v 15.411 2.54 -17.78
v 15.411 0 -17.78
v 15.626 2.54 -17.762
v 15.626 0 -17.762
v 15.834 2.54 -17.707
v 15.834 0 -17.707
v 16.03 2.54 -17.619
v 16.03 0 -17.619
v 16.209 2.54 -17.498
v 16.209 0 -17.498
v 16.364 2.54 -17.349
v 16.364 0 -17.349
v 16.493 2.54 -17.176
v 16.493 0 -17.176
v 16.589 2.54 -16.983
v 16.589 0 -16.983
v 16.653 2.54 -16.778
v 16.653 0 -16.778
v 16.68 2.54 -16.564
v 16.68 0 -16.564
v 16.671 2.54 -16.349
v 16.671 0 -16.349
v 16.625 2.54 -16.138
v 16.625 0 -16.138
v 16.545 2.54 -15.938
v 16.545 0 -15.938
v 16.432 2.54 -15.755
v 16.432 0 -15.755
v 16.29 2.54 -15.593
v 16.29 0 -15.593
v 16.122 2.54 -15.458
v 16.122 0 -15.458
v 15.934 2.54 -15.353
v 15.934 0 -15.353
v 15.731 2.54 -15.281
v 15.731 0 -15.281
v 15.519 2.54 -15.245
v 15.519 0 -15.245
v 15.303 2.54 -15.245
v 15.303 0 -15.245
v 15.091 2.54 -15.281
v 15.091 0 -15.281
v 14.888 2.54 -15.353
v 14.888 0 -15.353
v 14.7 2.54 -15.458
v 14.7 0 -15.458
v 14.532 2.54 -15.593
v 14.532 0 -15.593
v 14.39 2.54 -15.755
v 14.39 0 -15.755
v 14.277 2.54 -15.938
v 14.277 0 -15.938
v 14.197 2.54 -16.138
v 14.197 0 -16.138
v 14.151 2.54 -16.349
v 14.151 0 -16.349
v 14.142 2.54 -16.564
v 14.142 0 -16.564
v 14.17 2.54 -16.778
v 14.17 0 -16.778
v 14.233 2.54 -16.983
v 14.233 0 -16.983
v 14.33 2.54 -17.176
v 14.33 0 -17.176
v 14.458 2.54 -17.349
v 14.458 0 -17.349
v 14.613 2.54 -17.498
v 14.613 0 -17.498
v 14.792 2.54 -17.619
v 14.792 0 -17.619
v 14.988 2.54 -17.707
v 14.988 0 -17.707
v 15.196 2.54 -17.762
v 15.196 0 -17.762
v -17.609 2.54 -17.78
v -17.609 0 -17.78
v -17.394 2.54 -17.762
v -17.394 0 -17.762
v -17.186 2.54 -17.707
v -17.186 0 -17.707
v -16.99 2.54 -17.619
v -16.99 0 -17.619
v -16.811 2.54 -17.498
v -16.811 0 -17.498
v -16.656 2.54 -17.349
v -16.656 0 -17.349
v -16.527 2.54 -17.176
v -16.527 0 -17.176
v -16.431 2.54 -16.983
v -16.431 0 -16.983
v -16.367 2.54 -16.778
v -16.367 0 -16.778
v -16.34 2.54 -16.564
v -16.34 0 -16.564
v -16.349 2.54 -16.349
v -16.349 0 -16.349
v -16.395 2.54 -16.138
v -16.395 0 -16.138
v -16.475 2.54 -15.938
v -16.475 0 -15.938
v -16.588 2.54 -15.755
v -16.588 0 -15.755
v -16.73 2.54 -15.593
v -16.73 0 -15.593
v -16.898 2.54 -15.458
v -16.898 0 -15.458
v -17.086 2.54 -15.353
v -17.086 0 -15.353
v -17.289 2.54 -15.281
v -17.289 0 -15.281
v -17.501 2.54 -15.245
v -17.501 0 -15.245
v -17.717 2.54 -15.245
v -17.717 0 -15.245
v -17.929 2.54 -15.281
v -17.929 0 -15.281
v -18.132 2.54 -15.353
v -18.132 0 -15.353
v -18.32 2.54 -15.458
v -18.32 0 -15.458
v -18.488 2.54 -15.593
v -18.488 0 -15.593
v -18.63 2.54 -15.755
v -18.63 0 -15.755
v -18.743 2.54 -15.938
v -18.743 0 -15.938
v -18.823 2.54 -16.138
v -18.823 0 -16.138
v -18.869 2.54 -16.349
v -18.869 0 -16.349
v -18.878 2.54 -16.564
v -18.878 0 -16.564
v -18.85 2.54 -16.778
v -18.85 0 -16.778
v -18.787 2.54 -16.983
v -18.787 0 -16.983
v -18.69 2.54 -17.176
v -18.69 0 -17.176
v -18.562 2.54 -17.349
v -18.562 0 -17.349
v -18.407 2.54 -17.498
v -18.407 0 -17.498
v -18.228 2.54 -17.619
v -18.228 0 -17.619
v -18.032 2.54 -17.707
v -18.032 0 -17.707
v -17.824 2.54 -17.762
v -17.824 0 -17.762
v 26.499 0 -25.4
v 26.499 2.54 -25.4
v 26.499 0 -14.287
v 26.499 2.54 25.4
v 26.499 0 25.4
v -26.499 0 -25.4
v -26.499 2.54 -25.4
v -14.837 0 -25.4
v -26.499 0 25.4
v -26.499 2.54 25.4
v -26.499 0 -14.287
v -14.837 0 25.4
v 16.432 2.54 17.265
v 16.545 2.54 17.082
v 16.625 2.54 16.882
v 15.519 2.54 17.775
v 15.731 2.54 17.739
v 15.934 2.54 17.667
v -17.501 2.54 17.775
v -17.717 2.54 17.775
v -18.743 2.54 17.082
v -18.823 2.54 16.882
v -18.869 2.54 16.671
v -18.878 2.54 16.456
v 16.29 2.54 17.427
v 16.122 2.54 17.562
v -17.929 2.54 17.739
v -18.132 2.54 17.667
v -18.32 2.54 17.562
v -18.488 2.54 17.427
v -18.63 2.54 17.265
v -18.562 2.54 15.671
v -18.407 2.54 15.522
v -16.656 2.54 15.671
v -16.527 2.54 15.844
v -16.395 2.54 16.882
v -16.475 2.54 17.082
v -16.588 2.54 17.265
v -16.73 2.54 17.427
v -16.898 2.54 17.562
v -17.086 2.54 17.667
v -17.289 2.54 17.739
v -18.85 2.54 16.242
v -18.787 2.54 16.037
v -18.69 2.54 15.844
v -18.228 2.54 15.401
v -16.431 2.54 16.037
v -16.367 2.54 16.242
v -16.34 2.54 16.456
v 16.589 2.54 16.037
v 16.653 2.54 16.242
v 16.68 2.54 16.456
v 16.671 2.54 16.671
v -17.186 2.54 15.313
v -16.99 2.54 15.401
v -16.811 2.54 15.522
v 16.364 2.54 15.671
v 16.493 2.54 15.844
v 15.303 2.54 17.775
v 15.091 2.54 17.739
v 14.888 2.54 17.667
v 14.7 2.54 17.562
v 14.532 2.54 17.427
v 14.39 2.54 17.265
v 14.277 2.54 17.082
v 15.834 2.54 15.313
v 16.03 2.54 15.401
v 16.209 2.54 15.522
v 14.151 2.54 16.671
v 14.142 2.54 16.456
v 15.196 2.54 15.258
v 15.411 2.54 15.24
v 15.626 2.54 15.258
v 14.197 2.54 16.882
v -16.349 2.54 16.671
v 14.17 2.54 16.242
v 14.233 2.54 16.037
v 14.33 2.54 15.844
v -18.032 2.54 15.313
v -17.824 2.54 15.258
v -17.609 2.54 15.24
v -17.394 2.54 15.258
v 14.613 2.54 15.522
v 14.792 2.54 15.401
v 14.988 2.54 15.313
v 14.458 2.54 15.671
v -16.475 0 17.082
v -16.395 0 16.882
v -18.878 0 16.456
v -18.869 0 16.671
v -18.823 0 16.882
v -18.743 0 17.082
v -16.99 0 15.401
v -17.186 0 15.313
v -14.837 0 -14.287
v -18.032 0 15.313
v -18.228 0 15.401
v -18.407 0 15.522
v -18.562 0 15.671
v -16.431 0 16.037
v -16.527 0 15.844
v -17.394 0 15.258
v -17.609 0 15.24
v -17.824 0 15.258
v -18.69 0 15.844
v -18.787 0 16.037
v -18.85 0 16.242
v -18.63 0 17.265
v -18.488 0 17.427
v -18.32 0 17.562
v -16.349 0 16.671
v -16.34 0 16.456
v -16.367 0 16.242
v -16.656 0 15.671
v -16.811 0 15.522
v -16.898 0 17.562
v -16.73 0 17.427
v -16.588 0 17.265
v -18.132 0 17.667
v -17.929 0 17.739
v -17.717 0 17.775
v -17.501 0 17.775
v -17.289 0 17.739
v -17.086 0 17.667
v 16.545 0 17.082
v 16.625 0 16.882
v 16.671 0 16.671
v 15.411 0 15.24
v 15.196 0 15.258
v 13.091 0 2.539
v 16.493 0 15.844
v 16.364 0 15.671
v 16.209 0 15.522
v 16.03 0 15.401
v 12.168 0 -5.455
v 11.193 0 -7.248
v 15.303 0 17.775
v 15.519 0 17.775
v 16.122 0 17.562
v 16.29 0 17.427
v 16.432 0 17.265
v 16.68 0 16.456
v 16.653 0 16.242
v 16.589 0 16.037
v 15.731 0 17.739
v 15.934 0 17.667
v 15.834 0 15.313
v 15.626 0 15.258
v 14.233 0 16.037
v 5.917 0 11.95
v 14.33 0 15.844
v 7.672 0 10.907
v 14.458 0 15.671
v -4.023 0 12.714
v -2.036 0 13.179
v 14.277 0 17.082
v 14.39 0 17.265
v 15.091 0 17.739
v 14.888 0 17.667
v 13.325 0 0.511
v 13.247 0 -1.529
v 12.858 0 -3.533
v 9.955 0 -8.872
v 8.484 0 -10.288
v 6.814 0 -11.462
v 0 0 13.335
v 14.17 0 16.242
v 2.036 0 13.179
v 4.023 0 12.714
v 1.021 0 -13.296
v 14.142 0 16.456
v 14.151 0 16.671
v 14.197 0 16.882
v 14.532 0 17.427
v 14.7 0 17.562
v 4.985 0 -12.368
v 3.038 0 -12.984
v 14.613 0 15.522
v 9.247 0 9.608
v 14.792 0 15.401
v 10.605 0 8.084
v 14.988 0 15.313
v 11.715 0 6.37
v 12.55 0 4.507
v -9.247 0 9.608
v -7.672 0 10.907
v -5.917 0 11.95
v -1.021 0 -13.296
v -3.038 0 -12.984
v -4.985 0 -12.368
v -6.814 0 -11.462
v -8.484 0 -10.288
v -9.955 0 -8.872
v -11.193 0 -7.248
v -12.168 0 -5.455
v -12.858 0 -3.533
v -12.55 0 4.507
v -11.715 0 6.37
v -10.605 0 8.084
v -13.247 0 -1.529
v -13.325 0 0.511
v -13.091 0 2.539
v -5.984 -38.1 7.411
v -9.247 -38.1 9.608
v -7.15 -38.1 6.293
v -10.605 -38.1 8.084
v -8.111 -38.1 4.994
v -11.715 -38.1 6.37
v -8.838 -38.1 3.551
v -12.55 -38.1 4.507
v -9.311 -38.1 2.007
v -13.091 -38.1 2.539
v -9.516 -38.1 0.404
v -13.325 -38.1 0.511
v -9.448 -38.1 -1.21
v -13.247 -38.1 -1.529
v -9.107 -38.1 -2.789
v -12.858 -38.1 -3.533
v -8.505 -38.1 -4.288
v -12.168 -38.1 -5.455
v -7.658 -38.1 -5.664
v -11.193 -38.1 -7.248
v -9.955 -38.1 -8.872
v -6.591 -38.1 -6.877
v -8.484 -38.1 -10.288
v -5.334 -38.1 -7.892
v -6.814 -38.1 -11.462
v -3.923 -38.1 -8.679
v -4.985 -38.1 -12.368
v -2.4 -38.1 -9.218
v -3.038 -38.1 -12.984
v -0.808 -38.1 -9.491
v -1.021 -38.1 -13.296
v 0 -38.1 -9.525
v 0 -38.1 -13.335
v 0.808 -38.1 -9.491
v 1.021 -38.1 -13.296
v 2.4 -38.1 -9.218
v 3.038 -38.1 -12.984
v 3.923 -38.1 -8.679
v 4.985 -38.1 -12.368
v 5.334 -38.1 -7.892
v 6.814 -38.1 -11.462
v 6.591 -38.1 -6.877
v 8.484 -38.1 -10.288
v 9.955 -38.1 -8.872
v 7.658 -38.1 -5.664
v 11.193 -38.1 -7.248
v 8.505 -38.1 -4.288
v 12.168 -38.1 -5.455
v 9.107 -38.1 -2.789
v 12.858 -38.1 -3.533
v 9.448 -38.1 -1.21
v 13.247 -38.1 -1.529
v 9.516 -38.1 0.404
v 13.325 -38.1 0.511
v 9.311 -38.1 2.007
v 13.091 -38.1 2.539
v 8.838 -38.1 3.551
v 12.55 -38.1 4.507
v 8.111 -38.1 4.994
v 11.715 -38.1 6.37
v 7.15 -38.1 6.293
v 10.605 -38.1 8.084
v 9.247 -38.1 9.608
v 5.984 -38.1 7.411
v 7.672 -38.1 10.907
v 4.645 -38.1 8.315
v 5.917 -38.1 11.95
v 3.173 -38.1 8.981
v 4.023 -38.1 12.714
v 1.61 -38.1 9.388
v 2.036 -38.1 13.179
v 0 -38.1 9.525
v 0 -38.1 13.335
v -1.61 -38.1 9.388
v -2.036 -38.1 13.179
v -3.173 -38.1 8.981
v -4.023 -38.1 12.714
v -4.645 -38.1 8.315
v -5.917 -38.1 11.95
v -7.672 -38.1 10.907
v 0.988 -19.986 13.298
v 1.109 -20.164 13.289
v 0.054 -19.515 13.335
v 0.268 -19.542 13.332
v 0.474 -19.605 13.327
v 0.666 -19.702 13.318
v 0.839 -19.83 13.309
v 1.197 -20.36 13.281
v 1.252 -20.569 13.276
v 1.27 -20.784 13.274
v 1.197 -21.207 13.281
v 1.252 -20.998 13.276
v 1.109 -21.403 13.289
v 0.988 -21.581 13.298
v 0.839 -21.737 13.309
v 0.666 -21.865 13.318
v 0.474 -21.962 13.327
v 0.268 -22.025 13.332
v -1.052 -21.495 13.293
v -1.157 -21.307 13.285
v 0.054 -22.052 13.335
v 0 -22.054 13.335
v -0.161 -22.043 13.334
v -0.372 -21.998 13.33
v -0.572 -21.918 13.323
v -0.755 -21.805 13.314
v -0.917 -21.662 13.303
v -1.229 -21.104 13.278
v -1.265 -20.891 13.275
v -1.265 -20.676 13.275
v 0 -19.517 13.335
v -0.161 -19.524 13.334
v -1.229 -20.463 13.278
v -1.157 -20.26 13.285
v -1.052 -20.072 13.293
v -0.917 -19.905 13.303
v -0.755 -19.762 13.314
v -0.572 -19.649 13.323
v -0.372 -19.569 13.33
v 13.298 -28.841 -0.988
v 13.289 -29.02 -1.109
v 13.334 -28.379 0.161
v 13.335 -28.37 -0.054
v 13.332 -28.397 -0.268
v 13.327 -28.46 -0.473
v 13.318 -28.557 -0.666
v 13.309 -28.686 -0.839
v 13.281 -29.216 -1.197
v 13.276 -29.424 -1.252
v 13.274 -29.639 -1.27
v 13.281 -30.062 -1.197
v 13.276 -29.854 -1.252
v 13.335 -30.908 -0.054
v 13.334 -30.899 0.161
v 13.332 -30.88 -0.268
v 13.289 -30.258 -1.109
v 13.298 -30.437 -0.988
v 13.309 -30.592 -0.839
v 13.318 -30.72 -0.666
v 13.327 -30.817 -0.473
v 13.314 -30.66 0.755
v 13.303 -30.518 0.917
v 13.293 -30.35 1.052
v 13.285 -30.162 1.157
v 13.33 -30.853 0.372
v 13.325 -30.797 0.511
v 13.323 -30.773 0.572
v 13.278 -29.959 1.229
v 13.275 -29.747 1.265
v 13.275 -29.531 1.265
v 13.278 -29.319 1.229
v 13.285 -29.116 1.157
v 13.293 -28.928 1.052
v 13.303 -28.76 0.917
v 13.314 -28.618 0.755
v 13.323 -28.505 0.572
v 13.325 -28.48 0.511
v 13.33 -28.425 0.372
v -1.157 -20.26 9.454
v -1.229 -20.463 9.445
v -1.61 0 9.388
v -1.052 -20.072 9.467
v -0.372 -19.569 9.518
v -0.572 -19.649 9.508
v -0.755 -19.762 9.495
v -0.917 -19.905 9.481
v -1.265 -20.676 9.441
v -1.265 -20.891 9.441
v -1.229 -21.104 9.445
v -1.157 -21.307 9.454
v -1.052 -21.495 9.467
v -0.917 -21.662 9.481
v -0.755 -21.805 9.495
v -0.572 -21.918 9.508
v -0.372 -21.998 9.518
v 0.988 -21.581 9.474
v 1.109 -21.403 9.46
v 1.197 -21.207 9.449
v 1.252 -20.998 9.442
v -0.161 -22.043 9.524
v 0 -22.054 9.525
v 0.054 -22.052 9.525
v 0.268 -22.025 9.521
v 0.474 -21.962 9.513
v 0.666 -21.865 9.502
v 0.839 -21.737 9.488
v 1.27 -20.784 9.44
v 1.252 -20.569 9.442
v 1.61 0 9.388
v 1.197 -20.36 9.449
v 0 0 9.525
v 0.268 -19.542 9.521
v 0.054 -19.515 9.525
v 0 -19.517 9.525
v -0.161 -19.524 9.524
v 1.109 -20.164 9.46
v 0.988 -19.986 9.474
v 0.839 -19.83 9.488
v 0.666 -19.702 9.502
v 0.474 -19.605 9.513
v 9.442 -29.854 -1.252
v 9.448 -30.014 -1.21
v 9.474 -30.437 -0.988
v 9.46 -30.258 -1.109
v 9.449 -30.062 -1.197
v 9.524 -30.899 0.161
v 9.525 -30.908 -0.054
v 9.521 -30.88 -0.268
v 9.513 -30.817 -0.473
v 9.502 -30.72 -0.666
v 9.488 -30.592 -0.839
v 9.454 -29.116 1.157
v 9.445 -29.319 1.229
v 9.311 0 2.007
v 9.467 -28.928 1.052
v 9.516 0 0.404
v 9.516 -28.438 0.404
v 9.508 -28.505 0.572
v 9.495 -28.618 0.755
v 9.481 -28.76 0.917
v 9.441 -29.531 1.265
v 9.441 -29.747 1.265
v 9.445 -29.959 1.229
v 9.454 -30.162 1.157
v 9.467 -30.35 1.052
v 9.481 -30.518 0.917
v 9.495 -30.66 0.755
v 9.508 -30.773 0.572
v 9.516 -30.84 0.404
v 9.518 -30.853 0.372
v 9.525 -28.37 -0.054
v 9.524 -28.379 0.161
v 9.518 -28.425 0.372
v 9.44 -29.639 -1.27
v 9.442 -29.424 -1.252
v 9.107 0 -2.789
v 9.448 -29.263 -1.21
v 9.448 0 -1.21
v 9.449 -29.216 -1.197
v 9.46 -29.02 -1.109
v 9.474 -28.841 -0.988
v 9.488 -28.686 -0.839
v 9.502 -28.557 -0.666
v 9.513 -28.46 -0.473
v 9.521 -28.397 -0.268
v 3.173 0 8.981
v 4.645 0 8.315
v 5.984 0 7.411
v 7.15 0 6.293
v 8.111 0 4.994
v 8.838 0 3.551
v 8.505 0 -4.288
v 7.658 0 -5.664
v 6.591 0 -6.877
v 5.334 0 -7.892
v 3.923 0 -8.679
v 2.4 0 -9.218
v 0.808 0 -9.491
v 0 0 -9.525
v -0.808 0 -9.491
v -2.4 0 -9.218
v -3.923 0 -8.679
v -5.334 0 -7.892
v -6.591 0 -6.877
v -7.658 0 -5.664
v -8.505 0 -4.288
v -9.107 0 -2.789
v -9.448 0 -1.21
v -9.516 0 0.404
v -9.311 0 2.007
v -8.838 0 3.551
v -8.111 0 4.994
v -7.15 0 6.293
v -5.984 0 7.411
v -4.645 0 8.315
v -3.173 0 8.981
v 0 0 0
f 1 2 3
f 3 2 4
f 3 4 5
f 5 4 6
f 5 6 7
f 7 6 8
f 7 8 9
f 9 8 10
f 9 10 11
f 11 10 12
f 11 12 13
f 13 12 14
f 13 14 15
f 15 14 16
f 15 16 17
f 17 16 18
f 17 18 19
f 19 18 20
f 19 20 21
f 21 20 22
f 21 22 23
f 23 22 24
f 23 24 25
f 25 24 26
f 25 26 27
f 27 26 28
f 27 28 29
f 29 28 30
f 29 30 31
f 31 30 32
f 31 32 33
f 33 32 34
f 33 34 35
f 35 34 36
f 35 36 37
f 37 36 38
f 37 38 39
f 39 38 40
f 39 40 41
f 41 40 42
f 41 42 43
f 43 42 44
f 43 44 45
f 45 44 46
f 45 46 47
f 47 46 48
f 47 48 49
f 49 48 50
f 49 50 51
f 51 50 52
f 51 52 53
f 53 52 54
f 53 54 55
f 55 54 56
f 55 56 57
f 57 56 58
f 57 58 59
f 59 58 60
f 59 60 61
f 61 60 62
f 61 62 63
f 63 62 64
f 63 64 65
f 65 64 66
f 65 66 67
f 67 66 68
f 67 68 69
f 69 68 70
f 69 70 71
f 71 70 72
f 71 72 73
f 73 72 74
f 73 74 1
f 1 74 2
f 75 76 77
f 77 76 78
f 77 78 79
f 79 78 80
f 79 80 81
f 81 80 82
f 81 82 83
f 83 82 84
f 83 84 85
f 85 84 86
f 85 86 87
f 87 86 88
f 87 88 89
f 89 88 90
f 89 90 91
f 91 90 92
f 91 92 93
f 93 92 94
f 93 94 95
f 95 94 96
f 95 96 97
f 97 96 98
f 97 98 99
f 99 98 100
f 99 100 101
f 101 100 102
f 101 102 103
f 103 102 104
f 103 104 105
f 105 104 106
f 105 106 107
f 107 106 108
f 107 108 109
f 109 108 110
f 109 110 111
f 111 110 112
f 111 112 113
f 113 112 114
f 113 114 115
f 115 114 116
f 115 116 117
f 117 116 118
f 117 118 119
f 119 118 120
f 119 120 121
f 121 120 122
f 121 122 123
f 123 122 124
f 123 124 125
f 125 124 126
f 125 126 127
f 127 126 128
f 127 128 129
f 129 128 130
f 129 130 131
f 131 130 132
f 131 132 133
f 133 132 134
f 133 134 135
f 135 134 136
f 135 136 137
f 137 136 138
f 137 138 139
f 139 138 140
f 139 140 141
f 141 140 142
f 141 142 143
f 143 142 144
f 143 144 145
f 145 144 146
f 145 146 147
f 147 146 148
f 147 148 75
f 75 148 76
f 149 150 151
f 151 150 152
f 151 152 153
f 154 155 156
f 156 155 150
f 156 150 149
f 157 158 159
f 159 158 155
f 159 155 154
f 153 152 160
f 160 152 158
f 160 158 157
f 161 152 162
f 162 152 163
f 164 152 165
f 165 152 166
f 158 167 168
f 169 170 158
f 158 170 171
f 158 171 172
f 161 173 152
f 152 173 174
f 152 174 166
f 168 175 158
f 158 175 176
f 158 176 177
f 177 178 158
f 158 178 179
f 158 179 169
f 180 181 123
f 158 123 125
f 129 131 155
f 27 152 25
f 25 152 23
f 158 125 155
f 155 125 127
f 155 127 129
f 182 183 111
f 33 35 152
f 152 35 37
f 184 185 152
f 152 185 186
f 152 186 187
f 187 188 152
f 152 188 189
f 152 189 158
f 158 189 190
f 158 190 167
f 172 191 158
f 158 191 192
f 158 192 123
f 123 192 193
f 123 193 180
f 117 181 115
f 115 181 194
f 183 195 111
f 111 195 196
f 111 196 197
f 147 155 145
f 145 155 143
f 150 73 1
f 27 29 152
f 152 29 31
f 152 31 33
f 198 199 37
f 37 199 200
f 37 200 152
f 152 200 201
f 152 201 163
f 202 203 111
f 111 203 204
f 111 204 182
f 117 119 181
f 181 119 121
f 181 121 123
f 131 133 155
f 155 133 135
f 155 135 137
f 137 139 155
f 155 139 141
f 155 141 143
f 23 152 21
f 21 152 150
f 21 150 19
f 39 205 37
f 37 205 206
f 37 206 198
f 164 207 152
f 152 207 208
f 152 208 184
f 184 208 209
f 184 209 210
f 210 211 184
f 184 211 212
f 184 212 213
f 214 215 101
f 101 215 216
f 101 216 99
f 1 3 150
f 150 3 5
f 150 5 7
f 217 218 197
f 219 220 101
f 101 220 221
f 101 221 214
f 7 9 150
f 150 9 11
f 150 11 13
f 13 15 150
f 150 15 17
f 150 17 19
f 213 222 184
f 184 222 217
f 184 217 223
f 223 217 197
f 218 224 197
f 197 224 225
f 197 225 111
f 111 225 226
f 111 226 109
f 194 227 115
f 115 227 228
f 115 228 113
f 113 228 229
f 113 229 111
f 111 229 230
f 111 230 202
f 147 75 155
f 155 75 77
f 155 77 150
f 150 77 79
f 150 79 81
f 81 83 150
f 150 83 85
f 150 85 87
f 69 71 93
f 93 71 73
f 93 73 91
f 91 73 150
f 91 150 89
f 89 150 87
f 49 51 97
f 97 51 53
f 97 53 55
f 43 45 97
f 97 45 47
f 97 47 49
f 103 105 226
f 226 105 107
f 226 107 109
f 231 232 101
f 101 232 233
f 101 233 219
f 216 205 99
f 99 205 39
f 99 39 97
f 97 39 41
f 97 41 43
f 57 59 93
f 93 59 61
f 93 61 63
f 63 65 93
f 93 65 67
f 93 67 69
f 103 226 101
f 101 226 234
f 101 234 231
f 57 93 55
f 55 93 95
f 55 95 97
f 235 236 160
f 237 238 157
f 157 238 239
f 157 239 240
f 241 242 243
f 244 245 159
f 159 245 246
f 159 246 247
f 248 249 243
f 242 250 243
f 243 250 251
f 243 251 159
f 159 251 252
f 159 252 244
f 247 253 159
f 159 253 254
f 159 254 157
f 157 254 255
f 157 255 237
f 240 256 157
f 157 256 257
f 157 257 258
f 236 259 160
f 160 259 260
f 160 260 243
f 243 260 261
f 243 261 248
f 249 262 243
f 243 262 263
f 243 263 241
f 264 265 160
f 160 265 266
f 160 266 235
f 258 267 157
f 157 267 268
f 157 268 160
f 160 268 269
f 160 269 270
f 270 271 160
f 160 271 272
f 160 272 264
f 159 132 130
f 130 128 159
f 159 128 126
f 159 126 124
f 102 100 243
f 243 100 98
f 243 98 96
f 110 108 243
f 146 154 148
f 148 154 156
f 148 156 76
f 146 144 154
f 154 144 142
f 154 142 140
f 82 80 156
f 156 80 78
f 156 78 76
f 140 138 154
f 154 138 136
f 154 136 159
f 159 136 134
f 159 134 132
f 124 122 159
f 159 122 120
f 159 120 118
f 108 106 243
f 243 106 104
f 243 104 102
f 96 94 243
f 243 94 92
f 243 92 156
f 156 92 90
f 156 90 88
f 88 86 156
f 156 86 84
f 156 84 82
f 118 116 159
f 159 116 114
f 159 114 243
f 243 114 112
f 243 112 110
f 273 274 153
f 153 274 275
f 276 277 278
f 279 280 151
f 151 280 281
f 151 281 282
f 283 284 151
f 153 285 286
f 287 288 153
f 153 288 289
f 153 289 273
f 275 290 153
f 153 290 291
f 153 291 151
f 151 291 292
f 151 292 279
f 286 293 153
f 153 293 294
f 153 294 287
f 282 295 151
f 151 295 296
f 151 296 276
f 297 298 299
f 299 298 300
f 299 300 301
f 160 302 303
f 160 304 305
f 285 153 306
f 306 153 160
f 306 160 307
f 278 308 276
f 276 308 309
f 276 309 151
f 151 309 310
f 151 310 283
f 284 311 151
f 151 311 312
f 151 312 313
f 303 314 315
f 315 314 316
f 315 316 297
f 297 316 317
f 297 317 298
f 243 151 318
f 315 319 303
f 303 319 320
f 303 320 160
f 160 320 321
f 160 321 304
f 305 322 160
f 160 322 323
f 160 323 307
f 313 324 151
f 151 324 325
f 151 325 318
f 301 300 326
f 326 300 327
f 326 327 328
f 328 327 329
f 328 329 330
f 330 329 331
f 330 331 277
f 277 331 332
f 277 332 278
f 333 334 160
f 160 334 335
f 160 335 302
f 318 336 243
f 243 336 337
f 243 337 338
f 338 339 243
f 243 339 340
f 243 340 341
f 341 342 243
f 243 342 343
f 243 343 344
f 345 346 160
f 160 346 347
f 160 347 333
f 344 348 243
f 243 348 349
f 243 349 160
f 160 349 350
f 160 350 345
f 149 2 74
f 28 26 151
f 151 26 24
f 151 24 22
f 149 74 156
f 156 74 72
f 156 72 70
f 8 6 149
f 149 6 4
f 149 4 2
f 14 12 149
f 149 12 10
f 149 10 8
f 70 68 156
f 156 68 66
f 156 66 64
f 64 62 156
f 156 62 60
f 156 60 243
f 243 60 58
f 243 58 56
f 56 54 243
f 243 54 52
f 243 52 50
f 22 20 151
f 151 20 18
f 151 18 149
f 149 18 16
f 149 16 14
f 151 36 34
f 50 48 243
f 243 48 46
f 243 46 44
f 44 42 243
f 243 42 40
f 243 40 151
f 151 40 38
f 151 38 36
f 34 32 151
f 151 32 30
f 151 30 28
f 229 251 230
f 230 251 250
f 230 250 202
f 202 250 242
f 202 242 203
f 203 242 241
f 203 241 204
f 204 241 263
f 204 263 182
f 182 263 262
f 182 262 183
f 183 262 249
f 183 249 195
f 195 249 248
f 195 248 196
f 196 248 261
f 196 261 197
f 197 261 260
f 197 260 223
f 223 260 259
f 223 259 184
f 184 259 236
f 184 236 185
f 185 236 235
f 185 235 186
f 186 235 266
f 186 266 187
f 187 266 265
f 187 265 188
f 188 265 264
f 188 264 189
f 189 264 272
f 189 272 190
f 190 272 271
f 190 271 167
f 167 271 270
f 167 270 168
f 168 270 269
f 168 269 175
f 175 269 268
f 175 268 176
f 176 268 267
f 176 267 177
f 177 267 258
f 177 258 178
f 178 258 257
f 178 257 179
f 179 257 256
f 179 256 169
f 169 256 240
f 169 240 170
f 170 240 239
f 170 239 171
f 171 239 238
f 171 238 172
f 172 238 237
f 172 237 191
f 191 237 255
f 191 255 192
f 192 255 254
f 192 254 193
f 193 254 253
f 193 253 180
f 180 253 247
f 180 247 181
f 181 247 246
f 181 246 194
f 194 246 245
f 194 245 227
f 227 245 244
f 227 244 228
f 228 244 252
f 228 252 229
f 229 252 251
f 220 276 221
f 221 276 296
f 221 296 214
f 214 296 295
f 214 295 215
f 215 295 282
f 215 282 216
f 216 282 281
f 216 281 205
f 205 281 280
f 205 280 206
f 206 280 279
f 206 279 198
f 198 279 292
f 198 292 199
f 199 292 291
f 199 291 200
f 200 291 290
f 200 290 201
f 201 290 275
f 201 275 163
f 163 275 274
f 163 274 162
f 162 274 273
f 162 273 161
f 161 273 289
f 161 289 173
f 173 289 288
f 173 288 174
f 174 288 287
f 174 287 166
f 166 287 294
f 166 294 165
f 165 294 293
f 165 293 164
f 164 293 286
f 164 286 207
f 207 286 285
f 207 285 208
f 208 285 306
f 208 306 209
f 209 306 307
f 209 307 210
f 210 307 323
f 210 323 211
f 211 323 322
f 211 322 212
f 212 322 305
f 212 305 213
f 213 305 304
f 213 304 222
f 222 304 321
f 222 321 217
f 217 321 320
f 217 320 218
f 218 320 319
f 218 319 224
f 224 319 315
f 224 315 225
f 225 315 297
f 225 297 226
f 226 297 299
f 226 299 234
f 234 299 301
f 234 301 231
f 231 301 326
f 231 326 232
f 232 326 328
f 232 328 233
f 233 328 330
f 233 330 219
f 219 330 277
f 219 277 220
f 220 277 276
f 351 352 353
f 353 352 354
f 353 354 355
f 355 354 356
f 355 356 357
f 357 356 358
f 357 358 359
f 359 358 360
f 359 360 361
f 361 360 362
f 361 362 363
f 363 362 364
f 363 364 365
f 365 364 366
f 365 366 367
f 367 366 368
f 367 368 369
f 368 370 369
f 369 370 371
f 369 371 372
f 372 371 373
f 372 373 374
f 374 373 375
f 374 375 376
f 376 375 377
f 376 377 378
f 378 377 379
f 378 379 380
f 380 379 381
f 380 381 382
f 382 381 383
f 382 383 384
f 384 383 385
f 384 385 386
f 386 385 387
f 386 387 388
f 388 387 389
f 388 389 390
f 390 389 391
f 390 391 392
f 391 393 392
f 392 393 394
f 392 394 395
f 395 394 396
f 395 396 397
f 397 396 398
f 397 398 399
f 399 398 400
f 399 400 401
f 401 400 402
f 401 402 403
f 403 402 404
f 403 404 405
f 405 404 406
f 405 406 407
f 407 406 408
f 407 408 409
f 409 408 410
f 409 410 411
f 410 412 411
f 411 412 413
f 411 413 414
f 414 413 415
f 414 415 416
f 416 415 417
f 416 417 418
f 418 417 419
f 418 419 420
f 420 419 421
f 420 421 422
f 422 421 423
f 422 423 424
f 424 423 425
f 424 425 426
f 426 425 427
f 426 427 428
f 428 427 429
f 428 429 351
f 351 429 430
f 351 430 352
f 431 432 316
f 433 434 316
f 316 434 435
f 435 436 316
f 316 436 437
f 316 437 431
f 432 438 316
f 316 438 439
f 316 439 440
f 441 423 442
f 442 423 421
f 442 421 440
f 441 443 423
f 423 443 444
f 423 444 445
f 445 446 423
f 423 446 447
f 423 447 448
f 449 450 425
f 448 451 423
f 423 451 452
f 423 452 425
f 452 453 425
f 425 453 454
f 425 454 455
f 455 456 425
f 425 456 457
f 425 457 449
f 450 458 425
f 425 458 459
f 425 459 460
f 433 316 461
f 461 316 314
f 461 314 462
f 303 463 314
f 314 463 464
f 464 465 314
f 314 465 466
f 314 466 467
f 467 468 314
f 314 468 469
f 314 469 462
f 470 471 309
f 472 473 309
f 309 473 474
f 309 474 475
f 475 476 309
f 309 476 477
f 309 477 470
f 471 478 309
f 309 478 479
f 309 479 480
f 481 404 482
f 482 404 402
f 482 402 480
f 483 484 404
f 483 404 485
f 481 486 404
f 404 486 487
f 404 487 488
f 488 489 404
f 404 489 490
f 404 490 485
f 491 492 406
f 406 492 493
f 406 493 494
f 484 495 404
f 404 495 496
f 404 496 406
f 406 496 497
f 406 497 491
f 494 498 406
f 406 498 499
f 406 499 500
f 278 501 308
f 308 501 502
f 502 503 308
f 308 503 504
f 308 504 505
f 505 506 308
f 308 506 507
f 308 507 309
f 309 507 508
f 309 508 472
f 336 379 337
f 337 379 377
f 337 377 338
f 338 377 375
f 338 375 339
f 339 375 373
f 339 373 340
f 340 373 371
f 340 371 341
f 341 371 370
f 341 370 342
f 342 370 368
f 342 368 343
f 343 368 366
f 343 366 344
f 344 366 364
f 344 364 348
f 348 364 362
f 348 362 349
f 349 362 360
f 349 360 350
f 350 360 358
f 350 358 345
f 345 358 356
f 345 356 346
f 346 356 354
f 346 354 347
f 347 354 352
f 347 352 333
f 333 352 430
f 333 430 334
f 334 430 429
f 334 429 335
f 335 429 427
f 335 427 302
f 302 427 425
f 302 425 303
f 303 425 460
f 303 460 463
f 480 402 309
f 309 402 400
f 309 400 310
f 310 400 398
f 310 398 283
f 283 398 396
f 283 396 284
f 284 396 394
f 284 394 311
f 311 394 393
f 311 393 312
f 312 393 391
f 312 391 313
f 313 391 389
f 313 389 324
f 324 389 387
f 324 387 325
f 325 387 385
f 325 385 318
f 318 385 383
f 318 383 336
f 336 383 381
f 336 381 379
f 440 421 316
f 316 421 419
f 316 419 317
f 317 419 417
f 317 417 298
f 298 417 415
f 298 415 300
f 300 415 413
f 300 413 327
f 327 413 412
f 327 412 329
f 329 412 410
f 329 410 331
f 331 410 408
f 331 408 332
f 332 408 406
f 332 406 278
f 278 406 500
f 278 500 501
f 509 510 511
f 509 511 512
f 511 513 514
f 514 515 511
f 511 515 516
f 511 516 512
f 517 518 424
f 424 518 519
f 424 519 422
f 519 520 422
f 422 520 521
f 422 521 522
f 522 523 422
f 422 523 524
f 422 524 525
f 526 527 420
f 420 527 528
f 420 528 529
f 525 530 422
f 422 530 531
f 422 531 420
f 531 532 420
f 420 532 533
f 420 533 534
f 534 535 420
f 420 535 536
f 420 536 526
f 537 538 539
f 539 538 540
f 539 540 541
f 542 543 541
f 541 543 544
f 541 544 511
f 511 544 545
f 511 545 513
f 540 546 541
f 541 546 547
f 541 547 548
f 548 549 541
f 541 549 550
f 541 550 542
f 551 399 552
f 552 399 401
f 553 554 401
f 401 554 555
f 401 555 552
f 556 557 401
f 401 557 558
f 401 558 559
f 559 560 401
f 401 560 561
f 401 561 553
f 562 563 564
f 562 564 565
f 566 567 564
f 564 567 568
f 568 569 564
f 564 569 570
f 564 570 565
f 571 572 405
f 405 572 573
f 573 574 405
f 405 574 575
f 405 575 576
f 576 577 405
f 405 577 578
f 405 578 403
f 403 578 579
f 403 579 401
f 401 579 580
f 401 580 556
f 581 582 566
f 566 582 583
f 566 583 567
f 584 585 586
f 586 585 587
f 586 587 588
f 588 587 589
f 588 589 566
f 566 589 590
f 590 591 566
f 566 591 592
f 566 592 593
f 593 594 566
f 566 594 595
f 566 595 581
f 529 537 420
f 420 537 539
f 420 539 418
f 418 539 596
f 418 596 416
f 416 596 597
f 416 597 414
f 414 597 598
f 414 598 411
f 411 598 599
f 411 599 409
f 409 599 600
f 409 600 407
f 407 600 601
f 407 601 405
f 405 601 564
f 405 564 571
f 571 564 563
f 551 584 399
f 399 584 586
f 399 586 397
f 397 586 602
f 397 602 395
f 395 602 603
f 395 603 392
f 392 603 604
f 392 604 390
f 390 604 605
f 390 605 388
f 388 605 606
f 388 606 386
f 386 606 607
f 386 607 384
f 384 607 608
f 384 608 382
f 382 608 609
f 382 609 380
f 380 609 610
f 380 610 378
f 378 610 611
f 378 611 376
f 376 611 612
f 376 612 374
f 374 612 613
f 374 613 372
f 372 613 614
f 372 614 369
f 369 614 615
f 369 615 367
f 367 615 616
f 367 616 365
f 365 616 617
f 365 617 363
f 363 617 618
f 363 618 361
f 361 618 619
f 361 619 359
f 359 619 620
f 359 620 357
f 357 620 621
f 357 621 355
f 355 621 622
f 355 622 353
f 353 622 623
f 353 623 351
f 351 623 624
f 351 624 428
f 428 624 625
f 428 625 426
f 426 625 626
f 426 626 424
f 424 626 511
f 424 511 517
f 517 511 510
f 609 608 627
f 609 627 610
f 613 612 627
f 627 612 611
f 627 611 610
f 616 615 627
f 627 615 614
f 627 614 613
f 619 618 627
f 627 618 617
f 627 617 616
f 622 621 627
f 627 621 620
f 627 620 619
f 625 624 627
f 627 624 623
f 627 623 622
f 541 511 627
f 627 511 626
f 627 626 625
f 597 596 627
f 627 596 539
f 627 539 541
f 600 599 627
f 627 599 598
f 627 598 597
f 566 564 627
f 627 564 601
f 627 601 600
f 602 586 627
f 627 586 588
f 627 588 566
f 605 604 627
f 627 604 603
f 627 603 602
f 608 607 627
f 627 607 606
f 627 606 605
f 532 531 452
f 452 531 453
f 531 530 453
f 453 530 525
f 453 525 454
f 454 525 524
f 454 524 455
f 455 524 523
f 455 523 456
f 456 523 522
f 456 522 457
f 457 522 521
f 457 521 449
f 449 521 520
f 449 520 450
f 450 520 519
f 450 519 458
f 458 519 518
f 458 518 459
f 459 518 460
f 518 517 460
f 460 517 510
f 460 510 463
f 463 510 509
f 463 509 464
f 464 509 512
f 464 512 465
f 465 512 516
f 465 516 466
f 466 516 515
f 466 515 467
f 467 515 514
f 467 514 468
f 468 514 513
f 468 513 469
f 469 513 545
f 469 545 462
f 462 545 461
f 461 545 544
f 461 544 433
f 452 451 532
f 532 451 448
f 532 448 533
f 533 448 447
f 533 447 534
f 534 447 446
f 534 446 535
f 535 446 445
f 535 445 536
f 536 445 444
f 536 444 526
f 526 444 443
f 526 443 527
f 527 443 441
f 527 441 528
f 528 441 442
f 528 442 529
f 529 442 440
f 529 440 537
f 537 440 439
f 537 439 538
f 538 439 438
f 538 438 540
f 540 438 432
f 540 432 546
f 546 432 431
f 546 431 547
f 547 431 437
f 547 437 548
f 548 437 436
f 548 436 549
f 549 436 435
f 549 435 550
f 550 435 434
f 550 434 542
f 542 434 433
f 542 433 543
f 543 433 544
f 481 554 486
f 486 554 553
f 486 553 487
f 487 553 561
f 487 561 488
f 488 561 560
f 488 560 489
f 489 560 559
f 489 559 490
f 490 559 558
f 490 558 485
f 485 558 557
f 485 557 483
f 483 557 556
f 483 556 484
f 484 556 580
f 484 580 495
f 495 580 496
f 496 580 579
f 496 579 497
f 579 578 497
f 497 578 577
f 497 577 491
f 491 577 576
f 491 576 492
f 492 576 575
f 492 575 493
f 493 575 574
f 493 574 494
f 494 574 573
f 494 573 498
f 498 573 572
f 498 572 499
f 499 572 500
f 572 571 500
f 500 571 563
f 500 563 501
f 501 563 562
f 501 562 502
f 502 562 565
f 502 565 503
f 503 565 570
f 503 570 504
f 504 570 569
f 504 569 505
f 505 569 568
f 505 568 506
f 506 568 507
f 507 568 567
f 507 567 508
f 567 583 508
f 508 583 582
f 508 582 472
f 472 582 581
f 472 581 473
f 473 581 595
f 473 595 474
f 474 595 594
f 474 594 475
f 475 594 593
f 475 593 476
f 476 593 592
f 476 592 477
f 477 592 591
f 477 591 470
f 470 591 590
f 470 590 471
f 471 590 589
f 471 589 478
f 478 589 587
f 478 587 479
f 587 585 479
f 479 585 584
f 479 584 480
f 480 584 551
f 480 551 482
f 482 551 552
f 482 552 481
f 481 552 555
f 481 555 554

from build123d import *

# Parameters (mm, degrees)
SKETCH1_W            = 52.99786638
SKETCH1_H            = 50.8
BOSS_EXTRUDE1_DEPTH  = 2.54
SKETCH2_R            = 1.27
CUT_EXTRUDE1_DEPTH   = 37.794090017
LPATTERN1_COUNT      = 2
LPATTERN1_PITCH      = 33.02
LPATTERN1_COUNT_DIR2 = 2
LPATTERN1_PITCH_DIR2 = 33.02
SKETCH3_R            = 13.335
SKETCH3_R_2          = 9.525
BOSS_EXTRUDE2_DEPTH  = 38.1
SKETCH4_R            = 1.27
CUT_EXTRUDE2_DEPTH   = 7.62
SKETCH5_R            = 1.27
CUT_EXTRUDE3_DEPTH   = 7.62


with BuildPart() as part:
    # Sketch1 → Boss-Extrude1 (new body)
    with BuildSketch(Plane(origin=(0, 0, 0), x_dir=(1, 0, 0), z_dir=(0, 1, 0))):
        Rectangle(SKETCH1_W, SKETCH1_H)
    extrude(amount=BOSS_EXTRUDE1_DEPTH)

    # Sketch2 → Cut-Extrude1 (cut, through all)
    with BuildSketch(Plane.XZ):
        with Locations(Location((-17.60893319, 16.51, 0), (0, 0, 270))):
            Circle(SKETCH2_R)
    cut_extrude1 = extrude(amount=-CUT_EXTRUDE1_DEPTH, mode=Mode.SUBTRACT)

    # LPattern1: Cut-Extrude1 2 × 2
    with Locations(*[(i * LPATTERN1_PITCH, 0, -j * LPATTERN1_PITCH_DIR2) for i in range(LPATTERN1_COUNT) for j in range(LPATTERN1_COUNT_DIR2) if (i, j) != (0, 0)]):
        add(cut_extrude1, mode=Mode.SUBTRACT)

    # Sketch3 → Boss-Extrude2 (add)
    with BuildSketch(Plane.XZ):
        with Locations(Location((0, 0, 0), (0, 0, 90))):
            Circle(SKETCH3_R)
        with Locations(Location((0, 0, 0), (0, 0, 90))):
            Circle(SKETCH3_R_2, mode=Mode.SUBTRACT)
    extrude(amount=BOSS_EXTRUDE2_DEPTH)

    # Sketch4 → Cut-Extrude2 (cut)
    with BuildSketch(Plane.XY.offset(13.335)):
        with Locations(Location((0, -20.78376556, 0), (0, 0, 270))):
            Circle(SKETCH4_R)
    extrude(amount=-CUT_EXTRUDE2_DEPTH, mode=Mode.SUBTRACT)

    # Sketch5 → Cut-Extrude3 (cut)
    with BuildSketch(Plane(origin=(13.335, 0, 0), x_dir=(0, 0, -1), z_dir=(1, 0, 0))):
        with Locations((0, -29.639158728)):
            Circle(SKETCH5_R)
    extrude(amount=-CUT_EXTRUDE3_DEPTH, mode=Mode.SUBTRACT)


solid = part.part
